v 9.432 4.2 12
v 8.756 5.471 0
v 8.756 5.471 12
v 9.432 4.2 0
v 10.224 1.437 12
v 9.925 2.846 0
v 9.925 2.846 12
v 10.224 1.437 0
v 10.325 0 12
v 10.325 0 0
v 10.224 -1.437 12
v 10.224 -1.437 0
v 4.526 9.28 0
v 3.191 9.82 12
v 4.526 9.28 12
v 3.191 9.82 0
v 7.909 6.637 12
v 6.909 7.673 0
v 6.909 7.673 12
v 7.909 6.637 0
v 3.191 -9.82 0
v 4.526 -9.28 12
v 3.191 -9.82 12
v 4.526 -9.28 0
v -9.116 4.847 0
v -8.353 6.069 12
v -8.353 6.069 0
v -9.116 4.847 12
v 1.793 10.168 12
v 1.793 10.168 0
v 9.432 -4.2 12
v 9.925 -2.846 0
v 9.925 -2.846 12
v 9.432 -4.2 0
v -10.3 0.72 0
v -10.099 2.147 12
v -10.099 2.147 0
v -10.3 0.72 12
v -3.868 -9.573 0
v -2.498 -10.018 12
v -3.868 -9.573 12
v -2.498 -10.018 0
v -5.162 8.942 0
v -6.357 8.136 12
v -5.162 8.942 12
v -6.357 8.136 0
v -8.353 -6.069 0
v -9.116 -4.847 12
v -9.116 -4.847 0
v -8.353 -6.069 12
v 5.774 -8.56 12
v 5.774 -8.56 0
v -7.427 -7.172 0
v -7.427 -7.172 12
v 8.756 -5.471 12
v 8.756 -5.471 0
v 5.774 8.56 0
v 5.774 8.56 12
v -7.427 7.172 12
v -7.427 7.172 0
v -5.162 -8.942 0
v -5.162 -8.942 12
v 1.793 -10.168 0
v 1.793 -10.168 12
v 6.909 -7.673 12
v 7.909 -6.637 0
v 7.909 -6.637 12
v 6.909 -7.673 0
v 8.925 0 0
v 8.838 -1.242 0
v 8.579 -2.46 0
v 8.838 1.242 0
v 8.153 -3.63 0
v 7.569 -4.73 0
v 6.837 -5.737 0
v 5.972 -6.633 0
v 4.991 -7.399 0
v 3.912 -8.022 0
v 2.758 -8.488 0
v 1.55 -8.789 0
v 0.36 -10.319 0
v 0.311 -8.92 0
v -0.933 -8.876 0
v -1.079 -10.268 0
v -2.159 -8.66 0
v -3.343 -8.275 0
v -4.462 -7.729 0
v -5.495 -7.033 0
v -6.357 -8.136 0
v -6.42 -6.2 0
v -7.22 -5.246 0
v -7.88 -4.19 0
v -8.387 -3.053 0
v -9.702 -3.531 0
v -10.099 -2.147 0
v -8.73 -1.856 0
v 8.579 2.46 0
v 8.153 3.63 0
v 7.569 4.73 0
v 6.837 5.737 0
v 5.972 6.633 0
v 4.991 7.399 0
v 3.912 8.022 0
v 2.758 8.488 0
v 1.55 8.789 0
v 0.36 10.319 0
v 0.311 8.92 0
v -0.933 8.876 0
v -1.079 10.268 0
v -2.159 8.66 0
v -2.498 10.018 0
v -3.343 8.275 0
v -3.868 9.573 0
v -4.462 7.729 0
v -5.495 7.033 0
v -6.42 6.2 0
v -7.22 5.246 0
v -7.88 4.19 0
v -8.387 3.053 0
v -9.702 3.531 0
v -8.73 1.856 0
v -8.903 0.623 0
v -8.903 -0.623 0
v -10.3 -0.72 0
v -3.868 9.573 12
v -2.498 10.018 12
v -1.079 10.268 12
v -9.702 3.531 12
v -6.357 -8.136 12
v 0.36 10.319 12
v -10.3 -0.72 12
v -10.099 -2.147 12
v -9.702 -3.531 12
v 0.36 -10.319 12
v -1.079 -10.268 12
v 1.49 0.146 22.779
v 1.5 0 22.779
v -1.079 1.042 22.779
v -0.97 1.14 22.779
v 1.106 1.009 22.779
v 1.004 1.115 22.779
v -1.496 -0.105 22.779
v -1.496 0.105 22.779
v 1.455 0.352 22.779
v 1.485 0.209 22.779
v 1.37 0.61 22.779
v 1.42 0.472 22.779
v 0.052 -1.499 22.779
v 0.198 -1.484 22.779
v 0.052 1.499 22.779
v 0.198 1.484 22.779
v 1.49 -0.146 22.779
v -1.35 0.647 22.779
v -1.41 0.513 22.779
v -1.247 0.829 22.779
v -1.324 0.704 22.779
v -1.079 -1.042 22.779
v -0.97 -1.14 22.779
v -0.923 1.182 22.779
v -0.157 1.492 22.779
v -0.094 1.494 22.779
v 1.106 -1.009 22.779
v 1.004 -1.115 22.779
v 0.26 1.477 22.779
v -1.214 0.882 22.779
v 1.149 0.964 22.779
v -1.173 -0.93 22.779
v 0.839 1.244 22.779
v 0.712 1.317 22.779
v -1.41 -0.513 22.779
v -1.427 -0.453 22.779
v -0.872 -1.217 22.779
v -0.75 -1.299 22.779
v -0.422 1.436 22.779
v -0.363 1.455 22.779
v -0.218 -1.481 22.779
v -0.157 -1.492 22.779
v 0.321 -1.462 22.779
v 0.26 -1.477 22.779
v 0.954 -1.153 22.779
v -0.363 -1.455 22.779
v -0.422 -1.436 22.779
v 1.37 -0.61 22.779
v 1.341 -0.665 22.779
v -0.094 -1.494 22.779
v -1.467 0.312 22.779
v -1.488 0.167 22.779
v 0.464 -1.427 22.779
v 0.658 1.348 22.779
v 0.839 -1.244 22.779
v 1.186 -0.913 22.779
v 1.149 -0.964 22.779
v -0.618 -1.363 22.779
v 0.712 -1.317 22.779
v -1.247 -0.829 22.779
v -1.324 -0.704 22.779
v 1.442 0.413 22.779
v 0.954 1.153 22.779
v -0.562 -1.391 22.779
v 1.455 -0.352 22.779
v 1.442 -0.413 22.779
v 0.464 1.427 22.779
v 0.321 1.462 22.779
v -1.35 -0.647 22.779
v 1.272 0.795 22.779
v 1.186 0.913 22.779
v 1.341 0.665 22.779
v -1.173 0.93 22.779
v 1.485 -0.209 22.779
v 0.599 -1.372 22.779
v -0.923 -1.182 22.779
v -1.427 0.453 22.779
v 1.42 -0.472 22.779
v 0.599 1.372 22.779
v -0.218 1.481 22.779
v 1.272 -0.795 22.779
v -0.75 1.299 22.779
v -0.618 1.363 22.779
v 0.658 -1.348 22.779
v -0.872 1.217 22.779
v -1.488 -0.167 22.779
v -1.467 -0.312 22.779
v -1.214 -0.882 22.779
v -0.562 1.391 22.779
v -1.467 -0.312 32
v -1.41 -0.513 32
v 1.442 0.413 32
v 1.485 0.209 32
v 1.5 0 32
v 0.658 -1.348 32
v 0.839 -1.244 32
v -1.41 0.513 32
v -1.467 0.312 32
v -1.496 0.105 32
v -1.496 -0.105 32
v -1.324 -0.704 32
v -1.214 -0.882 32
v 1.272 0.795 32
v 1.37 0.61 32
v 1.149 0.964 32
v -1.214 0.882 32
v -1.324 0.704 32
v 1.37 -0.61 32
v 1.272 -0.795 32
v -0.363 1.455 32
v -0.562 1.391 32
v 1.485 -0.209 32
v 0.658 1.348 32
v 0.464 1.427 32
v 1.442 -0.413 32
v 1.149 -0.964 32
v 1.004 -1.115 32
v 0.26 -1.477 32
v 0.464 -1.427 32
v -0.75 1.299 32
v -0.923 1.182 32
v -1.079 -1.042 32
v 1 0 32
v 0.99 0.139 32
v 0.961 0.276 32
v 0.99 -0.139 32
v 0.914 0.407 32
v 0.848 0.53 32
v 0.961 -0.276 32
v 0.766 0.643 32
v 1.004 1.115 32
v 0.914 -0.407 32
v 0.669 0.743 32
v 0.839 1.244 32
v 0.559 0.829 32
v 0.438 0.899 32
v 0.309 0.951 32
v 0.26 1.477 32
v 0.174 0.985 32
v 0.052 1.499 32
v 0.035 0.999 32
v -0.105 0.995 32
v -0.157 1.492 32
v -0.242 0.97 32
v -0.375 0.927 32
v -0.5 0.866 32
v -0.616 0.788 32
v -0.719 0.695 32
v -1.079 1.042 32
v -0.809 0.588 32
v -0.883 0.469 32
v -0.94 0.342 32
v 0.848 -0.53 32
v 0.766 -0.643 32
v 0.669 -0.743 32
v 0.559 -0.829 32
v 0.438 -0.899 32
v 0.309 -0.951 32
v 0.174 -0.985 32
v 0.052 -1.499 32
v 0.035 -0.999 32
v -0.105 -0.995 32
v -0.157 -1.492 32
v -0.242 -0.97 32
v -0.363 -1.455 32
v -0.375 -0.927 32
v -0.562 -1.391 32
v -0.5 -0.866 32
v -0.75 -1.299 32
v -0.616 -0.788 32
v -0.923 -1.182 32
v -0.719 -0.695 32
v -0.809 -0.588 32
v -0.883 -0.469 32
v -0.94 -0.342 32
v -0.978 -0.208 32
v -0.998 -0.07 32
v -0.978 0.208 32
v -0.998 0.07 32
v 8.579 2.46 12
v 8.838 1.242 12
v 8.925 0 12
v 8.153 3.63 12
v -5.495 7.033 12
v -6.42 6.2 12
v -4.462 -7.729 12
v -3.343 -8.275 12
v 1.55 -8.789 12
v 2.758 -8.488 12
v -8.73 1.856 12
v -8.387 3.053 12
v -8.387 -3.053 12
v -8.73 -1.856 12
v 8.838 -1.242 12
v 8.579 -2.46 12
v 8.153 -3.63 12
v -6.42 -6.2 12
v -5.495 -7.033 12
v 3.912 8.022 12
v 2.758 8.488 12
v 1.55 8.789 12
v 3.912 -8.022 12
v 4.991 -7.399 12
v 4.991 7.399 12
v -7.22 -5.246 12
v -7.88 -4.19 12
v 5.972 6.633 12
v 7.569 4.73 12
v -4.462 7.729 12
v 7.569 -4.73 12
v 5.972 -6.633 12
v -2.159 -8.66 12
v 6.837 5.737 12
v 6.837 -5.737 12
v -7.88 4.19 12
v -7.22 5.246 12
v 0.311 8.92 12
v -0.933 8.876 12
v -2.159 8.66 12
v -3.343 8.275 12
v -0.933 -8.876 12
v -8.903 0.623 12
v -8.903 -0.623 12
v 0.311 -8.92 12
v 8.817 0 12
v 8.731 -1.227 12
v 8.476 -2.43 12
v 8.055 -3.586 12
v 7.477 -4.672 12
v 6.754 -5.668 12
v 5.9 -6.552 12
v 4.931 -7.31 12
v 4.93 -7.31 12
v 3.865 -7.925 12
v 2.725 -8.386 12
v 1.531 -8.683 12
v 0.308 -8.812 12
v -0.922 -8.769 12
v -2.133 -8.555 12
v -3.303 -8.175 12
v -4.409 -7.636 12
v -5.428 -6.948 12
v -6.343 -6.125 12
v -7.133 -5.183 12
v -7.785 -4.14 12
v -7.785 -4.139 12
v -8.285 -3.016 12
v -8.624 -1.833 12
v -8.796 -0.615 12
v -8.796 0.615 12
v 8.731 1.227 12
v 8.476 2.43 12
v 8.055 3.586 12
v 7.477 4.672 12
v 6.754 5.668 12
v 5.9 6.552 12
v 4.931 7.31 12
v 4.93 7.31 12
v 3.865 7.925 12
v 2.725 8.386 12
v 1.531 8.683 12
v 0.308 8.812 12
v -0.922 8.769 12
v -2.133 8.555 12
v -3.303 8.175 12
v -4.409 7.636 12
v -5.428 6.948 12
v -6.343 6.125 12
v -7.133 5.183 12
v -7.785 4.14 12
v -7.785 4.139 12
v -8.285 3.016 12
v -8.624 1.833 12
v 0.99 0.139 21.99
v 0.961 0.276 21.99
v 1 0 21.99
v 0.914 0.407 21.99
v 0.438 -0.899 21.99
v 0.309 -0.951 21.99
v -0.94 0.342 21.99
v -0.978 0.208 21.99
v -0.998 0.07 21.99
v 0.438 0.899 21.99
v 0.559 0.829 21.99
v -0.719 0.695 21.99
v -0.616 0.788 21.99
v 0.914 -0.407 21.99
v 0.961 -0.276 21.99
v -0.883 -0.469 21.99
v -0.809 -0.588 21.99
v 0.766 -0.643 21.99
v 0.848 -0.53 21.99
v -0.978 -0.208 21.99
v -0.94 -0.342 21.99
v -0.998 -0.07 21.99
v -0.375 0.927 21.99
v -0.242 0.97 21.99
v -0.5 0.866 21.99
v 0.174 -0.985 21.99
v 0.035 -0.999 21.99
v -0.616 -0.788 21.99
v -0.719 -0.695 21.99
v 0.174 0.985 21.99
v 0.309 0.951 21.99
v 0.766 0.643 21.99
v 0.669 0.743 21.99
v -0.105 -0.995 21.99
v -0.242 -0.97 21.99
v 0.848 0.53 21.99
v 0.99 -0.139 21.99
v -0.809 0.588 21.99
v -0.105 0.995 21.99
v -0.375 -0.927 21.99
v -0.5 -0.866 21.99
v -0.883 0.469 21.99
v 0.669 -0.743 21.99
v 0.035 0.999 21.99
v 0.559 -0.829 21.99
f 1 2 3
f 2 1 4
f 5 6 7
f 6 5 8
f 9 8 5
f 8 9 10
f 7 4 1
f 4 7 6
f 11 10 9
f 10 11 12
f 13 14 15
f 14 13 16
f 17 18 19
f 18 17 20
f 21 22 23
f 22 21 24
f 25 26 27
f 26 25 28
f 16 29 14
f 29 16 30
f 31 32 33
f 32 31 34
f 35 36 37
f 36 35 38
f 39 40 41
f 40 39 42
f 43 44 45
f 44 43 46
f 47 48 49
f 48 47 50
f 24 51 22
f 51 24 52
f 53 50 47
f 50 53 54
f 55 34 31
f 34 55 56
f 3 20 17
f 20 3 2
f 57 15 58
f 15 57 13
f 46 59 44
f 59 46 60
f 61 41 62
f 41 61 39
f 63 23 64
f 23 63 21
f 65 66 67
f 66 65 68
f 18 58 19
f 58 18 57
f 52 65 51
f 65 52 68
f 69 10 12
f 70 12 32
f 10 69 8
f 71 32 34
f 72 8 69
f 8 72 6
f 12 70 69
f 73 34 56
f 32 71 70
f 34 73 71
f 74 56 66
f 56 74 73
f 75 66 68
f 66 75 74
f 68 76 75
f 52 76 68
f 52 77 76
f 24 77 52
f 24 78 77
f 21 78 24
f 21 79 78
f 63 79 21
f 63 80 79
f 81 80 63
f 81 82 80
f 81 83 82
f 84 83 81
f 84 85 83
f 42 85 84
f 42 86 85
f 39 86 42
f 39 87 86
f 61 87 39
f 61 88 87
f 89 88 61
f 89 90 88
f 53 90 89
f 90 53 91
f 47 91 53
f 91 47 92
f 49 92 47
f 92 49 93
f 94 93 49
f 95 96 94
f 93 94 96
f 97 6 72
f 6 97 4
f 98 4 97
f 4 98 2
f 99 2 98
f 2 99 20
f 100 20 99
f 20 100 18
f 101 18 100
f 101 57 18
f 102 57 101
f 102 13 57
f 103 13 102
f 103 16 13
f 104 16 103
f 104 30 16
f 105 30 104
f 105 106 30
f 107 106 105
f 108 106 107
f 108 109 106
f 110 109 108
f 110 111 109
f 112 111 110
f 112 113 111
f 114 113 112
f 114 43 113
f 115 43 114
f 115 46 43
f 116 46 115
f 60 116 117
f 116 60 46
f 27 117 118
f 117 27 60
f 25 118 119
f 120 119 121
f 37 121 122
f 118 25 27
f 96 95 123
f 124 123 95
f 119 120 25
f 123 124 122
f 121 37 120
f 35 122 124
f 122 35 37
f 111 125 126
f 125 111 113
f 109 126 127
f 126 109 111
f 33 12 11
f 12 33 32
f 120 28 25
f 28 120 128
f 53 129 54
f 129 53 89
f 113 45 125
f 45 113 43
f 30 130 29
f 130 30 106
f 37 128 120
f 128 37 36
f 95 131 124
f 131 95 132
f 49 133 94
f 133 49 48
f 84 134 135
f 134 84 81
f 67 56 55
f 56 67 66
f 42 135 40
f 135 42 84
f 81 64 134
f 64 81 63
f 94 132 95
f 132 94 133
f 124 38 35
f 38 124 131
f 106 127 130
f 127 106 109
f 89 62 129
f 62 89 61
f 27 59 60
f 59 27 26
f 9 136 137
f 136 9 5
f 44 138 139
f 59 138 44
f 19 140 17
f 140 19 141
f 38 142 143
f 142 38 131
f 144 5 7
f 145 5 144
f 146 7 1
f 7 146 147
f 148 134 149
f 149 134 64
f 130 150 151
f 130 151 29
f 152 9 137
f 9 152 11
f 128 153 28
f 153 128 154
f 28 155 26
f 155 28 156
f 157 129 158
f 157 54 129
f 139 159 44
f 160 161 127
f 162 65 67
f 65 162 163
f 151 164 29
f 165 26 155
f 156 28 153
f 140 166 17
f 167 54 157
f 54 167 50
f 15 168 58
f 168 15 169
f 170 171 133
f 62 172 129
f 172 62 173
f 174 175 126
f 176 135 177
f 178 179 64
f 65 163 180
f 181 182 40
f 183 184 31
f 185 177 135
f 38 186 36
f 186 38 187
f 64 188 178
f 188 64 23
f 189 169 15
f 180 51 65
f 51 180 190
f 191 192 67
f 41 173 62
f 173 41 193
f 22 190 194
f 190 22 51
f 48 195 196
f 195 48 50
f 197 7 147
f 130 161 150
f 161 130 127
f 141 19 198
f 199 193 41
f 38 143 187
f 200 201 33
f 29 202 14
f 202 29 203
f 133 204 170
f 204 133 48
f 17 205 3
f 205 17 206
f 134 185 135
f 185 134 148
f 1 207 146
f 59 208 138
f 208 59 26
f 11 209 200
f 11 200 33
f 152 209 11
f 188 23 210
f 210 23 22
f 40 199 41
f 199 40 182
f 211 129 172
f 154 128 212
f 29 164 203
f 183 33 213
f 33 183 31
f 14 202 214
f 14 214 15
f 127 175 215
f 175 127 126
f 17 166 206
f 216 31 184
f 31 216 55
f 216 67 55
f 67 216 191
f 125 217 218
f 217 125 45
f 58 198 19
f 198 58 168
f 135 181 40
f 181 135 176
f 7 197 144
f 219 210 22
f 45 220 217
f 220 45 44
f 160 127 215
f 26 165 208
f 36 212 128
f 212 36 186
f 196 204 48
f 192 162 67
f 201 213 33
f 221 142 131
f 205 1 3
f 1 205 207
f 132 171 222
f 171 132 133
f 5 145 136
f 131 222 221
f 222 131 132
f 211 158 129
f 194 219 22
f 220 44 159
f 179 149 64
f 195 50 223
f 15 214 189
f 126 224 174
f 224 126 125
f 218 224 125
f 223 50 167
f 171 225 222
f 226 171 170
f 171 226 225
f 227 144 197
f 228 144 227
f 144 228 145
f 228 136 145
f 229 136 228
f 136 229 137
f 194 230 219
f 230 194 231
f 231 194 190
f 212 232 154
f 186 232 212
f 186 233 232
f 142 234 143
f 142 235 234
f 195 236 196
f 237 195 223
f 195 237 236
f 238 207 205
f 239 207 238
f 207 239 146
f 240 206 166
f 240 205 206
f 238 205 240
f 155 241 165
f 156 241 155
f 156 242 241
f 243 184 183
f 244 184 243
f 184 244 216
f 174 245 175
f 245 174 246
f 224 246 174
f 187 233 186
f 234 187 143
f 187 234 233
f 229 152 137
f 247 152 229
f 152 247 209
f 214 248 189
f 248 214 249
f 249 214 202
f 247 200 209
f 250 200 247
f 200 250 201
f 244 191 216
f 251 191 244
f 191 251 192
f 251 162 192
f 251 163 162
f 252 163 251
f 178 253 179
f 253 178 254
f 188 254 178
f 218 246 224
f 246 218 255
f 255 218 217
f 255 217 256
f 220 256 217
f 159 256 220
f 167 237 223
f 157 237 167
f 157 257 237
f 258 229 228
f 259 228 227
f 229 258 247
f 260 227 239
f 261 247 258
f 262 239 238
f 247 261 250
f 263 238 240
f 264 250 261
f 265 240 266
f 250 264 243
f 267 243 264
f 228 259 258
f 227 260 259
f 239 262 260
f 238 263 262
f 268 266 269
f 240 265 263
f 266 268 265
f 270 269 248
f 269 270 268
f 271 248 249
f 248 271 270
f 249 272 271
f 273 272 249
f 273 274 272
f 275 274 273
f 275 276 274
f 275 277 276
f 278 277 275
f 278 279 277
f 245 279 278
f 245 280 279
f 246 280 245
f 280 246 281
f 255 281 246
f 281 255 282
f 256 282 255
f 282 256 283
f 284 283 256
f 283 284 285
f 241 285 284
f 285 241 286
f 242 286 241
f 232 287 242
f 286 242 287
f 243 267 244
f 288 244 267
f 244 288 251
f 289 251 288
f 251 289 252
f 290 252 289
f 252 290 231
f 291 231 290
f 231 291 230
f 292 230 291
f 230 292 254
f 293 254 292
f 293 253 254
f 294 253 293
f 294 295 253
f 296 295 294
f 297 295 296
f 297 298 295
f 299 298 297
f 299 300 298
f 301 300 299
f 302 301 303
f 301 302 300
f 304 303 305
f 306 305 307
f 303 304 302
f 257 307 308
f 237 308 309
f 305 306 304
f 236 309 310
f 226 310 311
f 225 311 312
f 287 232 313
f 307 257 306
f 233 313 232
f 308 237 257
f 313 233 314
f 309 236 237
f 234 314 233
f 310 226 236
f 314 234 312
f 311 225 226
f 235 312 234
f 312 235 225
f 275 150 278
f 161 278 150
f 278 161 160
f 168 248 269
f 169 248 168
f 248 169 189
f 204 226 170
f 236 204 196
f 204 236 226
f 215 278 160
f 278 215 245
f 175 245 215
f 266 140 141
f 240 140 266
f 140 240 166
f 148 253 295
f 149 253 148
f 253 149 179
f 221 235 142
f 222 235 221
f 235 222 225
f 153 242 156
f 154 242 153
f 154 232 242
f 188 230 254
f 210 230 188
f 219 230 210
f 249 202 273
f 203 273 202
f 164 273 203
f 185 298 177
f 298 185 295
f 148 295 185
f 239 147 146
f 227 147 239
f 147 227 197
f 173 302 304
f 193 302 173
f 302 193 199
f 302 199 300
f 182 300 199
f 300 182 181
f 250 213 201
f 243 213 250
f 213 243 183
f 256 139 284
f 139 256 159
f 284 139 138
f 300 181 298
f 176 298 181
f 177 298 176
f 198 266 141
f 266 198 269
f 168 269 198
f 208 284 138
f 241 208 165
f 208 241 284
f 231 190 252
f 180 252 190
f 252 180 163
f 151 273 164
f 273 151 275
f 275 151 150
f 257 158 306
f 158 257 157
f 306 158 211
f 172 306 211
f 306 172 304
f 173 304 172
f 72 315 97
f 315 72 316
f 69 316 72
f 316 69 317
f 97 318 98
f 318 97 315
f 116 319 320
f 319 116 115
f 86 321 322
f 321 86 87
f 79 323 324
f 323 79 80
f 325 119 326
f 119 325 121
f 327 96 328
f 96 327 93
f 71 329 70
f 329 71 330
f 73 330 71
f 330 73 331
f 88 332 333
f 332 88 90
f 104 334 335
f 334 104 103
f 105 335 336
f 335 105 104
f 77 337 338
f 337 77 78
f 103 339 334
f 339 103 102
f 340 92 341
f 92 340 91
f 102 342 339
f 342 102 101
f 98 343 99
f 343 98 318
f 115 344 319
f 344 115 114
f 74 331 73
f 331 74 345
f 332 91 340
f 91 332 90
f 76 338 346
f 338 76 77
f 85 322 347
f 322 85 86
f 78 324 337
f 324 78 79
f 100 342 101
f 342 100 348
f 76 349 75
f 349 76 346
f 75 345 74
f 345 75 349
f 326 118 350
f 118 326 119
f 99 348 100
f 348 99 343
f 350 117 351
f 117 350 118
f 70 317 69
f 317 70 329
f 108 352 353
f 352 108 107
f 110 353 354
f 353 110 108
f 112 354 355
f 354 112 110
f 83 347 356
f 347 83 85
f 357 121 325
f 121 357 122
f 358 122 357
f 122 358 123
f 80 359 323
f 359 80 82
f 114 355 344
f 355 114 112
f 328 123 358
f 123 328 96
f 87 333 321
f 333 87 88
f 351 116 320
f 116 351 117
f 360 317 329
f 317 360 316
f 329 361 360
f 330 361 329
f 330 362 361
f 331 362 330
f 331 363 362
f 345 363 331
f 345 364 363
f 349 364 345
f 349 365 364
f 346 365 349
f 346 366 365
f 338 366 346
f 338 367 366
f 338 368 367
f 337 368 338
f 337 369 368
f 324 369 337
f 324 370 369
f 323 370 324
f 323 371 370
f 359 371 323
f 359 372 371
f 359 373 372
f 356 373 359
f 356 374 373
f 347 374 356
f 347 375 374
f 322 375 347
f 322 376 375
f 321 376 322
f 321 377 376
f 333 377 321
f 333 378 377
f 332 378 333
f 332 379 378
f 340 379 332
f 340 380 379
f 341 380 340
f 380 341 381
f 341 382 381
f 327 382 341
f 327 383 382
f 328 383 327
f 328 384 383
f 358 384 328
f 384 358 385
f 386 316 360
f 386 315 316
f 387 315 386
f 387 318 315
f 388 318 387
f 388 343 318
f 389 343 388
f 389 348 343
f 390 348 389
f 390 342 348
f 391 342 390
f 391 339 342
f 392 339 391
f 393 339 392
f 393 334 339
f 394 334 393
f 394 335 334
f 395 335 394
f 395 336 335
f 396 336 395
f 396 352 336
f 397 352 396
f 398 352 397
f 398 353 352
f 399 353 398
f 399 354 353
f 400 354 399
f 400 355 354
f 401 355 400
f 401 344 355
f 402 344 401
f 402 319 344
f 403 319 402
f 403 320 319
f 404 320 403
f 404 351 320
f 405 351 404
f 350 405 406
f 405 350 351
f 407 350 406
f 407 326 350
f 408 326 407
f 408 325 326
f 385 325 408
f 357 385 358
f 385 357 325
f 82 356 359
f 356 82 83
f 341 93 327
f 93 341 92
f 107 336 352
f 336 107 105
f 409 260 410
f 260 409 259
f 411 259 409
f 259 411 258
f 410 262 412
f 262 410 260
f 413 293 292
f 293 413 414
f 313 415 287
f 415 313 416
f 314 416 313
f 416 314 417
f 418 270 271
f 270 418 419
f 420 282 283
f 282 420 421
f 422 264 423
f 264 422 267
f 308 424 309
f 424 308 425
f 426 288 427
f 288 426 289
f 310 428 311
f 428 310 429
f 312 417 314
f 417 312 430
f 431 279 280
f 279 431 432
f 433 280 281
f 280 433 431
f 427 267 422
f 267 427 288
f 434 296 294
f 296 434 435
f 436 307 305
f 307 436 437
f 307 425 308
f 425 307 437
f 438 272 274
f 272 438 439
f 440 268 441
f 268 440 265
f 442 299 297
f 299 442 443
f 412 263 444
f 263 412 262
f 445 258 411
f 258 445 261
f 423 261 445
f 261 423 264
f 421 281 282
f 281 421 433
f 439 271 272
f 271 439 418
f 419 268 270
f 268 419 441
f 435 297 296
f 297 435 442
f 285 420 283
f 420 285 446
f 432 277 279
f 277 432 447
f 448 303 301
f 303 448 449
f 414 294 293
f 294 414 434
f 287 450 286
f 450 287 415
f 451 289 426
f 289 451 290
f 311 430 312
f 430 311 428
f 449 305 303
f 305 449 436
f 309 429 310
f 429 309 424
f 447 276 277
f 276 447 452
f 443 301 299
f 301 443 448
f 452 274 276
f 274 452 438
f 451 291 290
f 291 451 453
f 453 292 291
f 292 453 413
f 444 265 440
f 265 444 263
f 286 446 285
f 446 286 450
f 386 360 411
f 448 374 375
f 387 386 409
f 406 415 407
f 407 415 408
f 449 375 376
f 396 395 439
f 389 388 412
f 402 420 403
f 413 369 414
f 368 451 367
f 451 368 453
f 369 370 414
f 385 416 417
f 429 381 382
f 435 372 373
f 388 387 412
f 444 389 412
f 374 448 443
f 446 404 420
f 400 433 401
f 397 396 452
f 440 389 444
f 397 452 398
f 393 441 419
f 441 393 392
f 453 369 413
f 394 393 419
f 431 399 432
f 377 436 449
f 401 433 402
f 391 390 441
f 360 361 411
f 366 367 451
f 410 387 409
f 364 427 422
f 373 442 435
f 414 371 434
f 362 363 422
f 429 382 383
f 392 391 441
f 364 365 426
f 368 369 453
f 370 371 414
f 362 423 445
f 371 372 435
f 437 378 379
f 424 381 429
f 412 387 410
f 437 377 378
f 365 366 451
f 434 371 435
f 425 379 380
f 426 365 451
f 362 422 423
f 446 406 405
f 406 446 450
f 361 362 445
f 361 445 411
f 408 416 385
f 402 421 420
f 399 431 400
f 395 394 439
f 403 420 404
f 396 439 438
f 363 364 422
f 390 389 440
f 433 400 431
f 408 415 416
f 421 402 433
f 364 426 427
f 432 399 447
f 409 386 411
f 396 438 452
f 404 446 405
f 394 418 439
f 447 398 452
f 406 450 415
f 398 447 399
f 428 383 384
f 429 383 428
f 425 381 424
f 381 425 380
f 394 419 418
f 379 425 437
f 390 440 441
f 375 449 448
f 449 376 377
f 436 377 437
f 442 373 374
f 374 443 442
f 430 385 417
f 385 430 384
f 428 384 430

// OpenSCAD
tol = 0.1;
flowConnDia = 17.65;
flowConnLen = 12;
bridgeH = 10;
tubeDia = 3;
tubeLen = flowConnLen+8;

$fn = 45; 
difference(){
    union(){
    cylinder(d=flowConnDia+3,h=flowConnLen);
    translate([0,0,flowConnLen]){
        cylinder(d1=flowConnDia+3,d2=tubeDia-2,h=bridgeH,flowConnLen);
        }//end translate
    translate([0,0,flowConnLen]){
        cylinder(d=tubeDia,h=tubeLen);
        }//end translate
    }//end union

    translate([0,0,flowConnLen-0.01]){
        cylinder(d1=flowConnDia,d2=tubeDia-1,h=bridgeH);
        }//end translate
        translate([0,0,-2]){
        cylinder(d=flowConnDia+2*tol,h=flowConnLen+2);
        cylinder(d=tubeDia-1,h=flowConnLen+bridgeH+tubeLen);
        }//end translate
        
    }//end difference
